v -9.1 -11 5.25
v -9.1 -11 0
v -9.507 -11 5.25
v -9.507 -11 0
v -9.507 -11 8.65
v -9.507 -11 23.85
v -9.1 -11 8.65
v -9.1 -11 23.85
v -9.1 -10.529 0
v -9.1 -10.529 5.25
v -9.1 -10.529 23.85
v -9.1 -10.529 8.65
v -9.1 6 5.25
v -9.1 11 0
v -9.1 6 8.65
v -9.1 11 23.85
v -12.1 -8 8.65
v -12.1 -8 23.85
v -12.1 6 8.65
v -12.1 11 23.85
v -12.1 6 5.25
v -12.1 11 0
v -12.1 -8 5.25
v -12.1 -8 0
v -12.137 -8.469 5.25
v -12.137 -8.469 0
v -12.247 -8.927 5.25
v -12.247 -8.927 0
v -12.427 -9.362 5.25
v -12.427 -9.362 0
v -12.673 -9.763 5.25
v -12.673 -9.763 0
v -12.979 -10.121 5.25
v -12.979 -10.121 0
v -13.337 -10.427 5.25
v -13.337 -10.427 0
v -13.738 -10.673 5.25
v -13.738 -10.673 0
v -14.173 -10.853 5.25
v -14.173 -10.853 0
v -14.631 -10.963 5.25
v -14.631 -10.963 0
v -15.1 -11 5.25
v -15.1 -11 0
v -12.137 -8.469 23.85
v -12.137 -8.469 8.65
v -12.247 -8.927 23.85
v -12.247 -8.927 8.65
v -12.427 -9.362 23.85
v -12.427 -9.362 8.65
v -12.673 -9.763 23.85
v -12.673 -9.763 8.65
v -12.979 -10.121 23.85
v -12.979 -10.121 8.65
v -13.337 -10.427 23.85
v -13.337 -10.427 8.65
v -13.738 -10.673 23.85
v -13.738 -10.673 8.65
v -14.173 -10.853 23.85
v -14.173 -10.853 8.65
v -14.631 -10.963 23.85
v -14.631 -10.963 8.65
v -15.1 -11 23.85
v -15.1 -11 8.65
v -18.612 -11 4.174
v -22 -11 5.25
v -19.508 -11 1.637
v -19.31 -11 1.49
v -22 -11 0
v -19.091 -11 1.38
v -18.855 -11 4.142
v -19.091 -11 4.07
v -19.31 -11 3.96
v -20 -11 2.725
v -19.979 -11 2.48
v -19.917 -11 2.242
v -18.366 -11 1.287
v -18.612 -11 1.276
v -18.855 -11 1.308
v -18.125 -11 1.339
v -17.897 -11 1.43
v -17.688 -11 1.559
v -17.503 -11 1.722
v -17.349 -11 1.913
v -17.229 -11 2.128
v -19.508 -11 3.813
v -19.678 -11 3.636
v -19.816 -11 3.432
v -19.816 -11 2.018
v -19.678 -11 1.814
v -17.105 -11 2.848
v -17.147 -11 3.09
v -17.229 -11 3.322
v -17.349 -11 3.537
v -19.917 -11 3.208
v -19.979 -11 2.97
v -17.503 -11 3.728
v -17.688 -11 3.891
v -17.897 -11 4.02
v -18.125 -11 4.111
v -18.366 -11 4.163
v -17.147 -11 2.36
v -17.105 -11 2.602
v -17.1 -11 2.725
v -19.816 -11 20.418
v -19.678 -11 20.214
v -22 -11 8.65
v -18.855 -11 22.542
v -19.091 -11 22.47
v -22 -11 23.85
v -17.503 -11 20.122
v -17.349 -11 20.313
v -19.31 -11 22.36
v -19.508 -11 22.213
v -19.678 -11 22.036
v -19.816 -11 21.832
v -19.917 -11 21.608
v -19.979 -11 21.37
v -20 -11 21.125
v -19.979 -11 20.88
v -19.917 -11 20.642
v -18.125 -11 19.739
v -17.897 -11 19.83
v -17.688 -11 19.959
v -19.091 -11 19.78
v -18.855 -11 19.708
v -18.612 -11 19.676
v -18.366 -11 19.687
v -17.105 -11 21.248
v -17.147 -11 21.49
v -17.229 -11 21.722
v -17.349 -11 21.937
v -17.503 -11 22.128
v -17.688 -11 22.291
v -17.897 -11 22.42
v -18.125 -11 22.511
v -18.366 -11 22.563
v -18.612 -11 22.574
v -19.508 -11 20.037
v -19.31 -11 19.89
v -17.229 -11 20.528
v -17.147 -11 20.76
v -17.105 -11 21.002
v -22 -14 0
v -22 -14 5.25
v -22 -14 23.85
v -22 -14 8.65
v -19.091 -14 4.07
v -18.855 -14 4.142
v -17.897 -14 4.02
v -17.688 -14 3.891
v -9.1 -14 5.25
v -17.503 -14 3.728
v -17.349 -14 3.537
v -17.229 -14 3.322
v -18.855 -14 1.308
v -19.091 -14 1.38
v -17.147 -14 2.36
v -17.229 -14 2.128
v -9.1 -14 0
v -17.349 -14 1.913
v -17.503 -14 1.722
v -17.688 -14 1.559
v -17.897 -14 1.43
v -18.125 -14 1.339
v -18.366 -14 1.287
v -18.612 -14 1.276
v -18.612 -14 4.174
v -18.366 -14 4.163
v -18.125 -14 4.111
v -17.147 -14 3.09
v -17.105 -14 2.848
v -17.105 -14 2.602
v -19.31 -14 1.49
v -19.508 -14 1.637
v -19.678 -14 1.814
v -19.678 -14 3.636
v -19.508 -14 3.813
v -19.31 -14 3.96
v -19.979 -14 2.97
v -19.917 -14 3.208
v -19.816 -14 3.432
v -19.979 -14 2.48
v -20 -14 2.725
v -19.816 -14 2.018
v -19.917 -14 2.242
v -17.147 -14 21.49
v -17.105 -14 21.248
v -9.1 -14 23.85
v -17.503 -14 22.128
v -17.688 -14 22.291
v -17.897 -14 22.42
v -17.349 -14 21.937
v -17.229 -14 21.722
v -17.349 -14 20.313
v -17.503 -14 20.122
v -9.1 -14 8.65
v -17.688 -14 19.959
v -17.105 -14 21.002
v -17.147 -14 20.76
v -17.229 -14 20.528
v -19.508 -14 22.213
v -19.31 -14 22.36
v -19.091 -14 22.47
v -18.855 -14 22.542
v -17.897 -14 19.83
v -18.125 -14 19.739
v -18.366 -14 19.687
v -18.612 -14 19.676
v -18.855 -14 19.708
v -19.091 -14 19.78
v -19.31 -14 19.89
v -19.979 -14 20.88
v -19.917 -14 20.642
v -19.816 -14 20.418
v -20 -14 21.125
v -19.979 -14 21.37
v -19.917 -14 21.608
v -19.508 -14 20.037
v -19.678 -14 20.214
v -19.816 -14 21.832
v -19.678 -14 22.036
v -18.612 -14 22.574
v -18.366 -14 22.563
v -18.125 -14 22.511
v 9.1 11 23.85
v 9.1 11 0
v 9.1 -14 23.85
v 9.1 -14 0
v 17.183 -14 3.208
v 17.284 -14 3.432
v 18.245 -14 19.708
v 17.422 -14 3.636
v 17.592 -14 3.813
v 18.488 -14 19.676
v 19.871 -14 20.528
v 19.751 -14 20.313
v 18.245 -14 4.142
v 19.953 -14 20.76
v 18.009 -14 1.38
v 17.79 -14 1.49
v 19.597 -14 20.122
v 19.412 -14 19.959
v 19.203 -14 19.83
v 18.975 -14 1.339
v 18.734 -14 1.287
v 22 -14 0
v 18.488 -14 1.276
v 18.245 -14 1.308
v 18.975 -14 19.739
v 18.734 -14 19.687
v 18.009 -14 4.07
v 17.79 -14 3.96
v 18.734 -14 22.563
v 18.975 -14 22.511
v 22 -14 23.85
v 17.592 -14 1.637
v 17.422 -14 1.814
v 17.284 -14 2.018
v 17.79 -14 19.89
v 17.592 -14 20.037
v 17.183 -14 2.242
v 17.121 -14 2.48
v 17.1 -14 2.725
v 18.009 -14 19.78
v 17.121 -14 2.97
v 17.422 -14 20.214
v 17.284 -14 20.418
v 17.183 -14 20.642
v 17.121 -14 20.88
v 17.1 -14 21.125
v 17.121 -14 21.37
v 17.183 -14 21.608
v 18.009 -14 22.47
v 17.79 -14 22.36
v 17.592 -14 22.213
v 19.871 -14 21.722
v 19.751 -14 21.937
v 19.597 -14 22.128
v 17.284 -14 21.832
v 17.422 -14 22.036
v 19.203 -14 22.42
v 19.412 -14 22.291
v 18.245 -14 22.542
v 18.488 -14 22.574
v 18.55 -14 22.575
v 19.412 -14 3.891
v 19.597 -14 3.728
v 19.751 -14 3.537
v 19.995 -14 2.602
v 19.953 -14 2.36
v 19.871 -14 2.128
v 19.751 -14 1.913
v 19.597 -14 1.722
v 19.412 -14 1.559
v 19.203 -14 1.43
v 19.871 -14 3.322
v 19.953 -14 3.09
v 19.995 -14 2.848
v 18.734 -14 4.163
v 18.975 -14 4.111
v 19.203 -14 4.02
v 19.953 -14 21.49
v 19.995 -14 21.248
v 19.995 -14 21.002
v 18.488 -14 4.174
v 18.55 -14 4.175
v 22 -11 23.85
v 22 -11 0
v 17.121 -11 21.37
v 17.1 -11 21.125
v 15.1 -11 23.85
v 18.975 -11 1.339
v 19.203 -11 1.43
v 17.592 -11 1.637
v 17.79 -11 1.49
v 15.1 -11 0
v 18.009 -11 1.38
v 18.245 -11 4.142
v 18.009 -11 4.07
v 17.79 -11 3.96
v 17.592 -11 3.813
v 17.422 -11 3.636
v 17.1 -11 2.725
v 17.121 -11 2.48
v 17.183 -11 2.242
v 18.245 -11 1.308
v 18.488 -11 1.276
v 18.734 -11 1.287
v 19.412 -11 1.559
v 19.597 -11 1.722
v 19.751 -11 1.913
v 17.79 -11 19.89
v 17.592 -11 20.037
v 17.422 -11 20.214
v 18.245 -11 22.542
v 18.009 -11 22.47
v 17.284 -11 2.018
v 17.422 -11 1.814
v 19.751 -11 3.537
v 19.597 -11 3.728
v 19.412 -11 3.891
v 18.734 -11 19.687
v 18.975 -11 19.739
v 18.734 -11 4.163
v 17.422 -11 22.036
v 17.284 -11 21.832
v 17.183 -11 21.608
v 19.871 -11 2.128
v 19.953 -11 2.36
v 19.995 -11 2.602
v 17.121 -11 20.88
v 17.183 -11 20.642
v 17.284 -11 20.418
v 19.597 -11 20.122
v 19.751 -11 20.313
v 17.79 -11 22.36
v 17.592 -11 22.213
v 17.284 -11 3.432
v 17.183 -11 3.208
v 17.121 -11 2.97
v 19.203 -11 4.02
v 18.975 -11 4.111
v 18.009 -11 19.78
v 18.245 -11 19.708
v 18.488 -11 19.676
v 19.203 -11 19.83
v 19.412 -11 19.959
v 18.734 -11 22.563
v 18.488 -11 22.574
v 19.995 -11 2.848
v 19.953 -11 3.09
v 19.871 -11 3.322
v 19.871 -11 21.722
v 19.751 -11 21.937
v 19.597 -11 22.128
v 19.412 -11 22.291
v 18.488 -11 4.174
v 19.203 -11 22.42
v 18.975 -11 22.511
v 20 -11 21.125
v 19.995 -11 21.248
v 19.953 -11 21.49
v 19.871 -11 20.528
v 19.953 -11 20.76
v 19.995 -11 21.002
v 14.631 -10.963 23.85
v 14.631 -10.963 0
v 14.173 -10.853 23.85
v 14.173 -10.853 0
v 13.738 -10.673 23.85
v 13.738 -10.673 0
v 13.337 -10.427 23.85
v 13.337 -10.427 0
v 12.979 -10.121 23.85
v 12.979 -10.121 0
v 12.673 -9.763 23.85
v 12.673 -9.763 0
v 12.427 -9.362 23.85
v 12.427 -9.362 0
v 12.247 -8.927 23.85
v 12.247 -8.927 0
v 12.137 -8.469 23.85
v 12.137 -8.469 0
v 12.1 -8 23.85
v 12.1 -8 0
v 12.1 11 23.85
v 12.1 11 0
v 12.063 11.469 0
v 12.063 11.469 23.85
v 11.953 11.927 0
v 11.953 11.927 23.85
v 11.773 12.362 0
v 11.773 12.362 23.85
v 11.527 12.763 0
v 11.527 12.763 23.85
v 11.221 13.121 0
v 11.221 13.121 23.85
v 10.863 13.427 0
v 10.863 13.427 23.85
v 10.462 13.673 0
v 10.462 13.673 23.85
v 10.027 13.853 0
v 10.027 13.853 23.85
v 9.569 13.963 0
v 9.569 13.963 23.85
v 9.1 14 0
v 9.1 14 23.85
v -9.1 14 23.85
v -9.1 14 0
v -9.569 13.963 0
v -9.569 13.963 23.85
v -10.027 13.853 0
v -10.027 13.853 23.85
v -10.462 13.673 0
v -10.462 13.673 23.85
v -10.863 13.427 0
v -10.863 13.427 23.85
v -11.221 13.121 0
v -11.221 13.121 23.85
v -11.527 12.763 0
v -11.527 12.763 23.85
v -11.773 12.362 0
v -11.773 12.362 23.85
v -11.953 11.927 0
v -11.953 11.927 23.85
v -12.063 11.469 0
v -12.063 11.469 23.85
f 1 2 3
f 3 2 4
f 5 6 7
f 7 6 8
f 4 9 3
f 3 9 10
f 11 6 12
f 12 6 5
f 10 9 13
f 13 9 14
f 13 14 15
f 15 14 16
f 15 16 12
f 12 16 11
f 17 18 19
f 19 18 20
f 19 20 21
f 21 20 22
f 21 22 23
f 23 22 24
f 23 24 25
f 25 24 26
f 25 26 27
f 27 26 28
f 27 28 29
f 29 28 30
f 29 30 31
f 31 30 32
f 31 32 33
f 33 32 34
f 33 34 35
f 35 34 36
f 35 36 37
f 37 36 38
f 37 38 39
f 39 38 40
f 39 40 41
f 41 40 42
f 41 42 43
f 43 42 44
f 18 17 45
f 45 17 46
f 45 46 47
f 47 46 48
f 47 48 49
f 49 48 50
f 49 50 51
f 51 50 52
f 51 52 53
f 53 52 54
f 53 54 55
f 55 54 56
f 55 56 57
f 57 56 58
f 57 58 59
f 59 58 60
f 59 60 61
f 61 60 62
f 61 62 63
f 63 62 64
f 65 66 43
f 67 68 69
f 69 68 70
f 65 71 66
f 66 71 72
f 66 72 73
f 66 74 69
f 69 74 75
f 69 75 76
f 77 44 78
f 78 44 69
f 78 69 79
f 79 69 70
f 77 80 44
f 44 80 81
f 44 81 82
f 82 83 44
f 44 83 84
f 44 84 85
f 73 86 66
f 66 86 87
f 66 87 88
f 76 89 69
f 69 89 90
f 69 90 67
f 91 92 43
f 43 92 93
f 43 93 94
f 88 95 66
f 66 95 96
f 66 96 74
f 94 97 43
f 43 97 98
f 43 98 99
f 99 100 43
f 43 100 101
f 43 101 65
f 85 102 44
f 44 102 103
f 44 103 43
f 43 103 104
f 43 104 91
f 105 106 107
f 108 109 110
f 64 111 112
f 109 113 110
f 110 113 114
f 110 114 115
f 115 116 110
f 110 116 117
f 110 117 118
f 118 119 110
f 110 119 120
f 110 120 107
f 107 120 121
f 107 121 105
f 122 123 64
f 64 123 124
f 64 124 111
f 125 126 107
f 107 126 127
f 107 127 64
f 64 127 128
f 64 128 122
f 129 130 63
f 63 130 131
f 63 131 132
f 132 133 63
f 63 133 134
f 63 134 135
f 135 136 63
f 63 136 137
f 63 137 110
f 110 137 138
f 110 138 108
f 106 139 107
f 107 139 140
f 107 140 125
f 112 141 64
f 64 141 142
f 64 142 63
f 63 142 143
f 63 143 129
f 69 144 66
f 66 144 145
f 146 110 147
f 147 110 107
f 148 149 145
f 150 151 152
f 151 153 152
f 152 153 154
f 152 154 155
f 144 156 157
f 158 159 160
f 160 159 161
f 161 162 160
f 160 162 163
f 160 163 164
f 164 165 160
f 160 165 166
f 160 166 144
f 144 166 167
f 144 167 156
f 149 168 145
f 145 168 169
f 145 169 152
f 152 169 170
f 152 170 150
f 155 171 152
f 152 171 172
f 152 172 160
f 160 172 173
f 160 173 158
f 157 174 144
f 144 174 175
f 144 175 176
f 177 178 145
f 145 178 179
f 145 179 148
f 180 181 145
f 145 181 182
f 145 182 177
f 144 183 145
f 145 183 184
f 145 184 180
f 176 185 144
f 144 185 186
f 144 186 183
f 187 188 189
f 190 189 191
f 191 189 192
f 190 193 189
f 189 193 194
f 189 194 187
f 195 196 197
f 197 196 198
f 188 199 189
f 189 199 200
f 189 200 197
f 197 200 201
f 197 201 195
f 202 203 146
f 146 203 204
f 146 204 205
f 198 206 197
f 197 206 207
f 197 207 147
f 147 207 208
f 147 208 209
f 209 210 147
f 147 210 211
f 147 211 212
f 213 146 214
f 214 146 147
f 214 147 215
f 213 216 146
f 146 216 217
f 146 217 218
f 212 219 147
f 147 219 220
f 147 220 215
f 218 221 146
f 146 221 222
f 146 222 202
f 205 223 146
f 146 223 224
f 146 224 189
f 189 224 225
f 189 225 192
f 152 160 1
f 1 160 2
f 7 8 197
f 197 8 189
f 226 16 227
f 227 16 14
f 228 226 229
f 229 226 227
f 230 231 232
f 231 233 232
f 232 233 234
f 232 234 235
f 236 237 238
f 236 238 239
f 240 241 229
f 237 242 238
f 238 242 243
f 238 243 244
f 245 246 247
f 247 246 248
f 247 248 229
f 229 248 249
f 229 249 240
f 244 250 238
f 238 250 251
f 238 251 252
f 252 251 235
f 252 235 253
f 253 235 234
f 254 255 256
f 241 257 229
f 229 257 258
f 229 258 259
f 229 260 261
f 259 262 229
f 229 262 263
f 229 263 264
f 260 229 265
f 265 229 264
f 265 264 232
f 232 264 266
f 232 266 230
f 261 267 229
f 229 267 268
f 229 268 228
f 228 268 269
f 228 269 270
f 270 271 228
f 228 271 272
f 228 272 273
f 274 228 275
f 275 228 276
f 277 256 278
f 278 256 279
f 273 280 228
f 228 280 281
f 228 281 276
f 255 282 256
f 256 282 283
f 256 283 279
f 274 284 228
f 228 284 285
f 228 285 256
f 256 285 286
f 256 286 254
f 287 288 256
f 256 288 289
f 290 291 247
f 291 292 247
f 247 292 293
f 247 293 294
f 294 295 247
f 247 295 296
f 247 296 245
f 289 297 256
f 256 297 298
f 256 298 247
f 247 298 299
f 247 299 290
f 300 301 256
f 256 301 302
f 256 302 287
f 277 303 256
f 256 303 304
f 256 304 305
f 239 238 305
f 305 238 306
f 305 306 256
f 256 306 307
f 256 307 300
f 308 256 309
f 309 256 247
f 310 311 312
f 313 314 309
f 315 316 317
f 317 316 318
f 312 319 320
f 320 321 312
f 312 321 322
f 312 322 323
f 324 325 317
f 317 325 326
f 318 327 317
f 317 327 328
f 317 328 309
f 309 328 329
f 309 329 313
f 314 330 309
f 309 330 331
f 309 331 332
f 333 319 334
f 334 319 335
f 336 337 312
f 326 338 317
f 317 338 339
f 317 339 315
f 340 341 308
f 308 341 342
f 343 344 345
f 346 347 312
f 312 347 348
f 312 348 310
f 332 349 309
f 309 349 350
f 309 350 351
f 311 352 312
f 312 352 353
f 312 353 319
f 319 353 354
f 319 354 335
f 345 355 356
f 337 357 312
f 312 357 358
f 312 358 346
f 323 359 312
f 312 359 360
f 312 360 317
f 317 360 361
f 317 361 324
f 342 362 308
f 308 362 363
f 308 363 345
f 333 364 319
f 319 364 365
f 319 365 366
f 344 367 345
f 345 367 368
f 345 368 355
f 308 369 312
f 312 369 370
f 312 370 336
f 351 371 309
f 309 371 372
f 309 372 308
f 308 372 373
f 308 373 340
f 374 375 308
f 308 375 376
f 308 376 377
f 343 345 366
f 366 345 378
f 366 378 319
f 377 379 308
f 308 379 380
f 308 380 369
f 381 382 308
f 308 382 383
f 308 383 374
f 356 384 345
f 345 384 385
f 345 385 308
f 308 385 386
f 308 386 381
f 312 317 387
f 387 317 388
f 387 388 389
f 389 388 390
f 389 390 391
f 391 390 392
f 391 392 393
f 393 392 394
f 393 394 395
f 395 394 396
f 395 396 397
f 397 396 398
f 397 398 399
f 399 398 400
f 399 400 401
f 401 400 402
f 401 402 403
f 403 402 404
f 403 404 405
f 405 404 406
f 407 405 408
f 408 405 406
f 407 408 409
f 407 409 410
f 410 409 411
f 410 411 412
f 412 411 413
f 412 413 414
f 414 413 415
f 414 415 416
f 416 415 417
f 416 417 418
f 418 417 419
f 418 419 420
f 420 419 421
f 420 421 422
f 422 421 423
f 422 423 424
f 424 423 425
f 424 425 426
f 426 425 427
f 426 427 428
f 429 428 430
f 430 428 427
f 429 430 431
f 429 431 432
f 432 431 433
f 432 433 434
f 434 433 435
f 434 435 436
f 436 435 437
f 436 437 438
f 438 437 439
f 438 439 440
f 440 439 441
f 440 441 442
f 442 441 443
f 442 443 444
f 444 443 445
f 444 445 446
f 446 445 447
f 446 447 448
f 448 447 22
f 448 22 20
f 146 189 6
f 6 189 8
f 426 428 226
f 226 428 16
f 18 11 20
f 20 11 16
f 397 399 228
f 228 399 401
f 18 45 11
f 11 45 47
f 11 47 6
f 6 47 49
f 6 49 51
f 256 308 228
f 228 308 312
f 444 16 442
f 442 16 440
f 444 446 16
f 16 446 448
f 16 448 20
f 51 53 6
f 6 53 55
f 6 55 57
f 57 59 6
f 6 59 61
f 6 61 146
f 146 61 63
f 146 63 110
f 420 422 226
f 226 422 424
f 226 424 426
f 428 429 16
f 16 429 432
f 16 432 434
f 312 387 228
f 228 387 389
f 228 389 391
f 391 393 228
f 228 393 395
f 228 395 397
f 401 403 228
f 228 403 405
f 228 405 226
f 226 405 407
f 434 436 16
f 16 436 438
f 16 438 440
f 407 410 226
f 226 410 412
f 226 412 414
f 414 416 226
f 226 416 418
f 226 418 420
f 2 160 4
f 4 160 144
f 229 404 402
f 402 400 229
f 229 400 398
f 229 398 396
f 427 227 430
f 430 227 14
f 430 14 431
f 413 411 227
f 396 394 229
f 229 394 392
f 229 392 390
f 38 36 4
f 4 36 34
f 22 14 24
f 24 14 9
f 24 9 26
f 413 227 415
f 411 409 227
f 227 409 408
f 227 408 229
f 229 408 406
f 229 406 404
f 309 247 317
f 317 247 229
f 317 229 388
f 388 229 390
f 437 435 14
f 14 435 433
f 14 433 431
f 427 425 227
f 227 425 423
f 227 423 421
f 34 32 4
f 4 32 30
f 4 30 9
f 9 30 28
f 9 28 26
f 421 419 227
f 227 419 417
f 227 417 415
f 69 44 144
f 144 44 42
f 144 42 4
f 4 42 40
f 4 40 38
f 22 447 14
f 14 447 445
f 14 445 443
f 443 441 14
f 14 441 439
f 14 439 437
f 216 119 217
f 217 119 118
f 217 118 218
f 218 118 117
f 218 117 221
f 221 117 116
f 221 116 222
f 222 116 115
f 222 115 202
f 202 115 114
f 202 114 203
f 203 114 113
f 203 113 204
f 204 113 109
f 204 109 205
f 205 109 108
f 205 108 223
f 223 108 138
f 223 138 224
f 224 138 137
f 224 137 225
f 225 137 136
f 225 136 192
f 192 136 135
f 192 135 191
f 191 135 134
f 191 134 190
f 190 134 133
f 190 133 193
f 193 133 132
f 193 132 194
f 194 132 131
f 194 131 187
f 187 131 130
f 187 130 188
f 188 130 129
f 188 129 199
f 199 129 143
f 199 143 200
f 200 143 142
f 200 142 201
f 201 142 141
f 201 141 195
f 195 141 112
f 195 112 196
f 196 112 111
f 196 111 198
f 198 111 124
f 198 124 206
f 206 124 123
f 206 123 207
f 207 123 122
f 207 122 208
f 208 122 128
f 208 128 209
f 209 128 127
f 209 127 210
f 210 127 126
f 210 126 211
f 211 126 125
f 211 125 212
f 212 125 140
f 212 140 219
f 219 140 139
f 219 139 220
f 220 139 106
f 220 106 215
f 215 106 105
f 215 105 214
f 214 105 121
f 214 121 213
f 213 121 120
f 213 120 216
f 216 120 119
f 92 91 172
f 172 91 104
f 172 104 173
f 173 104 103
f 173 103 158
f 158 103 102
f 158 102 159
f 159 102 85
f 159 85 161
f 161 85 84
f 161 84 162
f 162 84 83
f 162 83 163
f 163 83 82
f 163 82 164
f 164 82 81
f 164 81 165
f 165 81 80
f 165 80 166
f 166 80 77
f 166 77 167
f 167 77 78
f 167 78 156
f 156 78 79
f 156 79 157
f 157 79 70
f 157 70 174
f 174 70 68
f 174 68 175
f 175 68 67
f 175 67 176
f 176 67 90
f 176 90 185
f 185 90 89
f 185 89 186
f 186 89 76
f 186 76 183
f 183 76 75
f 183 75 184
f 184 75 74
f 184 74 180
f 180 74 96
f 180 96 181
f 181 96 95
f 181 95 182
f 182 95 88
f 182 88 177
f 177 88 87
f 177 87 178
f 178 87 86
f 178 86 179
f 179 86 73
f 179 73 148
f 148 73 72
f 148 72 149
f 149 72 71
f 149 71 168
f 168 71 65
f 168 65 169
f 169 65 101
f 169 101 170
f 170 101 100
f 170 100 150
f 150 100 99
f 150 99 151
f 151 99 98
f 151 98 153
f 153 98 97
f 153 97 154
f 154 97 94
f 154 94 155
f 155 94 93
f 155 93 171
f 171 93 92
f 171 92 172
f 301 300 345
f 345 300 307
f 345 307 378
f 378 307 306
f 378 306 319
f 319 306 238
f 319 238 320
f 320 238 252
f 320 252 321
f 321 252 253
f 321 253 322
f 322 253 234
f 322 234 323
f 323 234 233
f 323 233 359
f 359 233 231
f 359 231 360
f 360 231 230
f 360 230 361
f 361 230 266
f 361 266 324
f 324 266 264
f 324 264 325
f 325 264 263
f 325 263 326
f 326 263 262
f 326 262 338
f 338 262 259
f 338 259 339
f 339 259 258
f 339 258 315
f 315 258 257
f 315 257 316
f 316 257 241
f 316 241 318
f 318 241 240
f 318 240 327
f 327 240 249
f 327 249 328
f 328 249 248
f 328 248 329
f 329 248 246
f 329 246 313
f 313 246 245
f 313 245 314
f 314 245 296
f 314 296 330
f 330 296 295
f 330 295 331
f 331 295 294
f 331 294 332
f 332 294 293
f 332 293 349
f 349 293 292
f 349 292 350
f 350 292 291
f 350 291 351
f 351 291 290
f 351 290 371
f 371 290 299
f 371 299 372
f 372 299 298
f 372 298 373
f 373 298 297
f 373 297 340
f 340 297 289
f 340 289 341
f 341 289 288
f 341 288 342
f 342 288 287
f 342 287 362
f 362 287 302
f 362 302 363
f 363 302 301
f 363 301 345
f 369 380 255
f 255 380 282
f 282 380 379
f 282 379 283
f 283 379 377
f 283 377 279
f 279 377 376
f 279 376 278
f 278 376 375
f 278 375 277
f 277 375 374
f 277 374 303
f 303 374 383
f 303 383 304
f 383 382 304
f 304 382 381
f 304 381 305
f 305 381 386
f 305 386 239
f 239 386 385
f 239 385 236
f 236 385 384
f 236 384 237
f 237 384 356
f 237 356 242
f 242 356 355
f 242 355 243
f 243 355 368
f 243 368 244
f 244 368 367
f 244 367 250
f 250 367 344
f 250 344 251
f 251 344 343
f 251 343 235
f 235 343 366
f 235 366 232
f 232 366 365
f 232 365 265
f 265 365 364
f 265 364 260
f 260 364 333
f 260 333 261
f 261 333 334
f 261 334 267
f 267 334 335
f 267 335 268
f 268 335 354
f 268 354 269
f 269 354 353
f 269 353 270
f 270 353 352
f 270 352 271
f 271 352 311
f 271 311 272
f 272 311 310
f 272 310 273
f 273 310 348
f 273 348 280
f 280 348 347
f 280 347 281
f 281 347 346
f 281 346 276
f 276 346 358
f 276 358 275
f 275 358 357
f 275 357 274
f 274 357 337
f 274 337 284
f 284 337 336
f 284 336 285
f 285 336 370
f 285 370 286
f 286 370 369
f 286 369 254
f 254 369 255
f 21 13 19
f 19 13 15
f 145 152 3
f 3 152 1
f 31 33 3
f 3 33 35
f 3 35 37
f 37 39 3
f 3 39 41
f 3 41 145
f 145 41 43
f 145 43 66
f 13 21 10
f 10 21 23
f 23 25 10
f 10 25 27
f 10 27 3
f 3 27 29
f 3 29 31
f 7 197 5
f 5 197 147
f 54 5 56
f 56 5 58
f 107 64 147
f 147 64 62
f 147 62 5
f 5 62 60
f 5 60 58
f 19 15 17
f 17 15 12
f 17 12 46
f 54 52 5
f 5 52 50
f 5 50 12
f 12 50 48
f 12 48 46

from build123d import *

# Parameters (mm, degrees)
BOSS_EXTRUDE1_DEPTH     = 23.85
SKETCH4_R               = 1.45
CUT_EXTRUDE3_DEPTH      = 10
CUT_EXTRUDE4_DEPTH      = 10
CUT_EXTRUDE4_DEPTH_BACK = 10
SKETCH10_W              = 3.4
SKETCH10_H              = 20


with BuildPart() as part:
    # Sketch1 → Boss-Extrude1 (new body)
    with BuildSketch(Plane.XY):
        with BuildLine():
            Line((-9.1, -10.52892562), (-9.1, 11))
            Line((-9.1, 11), (9.1, 11))
            Line((9.1, 11), (9.1, -11))
            Line((9.1, -11), (9.1, -14))
            Line((9.1, -14), (12.1, -14))
            Line((12.1, -14), (22, -14))
            Line((22, -14), (22, -11))
            Line((22, -11), (15.1, -11))
            ThreePointArc((15.1, -11), (12.978679656, -10.121320344), (12.1, -8))
            Line((12.1, -8), (12.1, 11))
            ThreePointArc((12.1, 11), (11.221320344, 13.121320344), (9.1, 14))
            Line((9.1, 14), (-9.1, 14))
            ThreePointArc((-9.1, 14), (-11.221320344, 13.121320344), (-12.1, 11))
            Line((-12.1, 11), (-12.1, -8))
            ThreePointArc((-12.1, -8), (-12.978679656, -10.121320344), (-15.1, -11))
            Line((-15.1, -11), (-22, -11))
            Line((-22, -11), (-22, -14))
            Line((-22, -14), (-12.1, -14))
            Line((-12.1, -14), (-9.1, -14))
            Line((-9.1, -14), (-9.1, -11))
            Line((-9.1, -11), (-9.507142857, -11))
            Line((-9.507142857, -11), (-9.1, -10.52892562))
        make_face()
    extrude(amount=BOSS_EXTRUDE1_DEPTH)

    # Sketch4 → Cut-Extrude3 (cut)
    with BuildSketch(Plane(origin=(0, -11, 0), x_dir=(1, 0, 0), z_dir=(0, 1, 0))):
        with Locations((-18.55, -21.125)):
            Circle(SKETCH4_R)
        with Locations((-18.55, -2.725)):
            Circle(SKETCH4_R)
        with Locations((18.55, -21.125)):
            Circle(SKETCH4_R)
        with Locations((18.55, -2.725)):
            Circle(SKETCH4_R)
    extrude(amount=-CUT_EXTRUDE3_DEPTH, mode=Mode.SUBTRACT)

    # Sketch10 → Cut-Extrude4 (cut, two sides: drawn at the far end of the back side and taken through both)
    with BuildSketch(Plane.ZY.offset(12.1).offset(-CUT_EXTRUDE4_DEPTH_BACK)):
        with Locations((6.95, -4)):
            Rectangle(SKETCH10_W, SKETCH10_H)
    extrude(amount=CUT_EXTRUDE4_DEPTH + CUT_EXTRUDE4_DEPTH_BACK, mode=Mode.SUBTRACT)


solid = part.part
